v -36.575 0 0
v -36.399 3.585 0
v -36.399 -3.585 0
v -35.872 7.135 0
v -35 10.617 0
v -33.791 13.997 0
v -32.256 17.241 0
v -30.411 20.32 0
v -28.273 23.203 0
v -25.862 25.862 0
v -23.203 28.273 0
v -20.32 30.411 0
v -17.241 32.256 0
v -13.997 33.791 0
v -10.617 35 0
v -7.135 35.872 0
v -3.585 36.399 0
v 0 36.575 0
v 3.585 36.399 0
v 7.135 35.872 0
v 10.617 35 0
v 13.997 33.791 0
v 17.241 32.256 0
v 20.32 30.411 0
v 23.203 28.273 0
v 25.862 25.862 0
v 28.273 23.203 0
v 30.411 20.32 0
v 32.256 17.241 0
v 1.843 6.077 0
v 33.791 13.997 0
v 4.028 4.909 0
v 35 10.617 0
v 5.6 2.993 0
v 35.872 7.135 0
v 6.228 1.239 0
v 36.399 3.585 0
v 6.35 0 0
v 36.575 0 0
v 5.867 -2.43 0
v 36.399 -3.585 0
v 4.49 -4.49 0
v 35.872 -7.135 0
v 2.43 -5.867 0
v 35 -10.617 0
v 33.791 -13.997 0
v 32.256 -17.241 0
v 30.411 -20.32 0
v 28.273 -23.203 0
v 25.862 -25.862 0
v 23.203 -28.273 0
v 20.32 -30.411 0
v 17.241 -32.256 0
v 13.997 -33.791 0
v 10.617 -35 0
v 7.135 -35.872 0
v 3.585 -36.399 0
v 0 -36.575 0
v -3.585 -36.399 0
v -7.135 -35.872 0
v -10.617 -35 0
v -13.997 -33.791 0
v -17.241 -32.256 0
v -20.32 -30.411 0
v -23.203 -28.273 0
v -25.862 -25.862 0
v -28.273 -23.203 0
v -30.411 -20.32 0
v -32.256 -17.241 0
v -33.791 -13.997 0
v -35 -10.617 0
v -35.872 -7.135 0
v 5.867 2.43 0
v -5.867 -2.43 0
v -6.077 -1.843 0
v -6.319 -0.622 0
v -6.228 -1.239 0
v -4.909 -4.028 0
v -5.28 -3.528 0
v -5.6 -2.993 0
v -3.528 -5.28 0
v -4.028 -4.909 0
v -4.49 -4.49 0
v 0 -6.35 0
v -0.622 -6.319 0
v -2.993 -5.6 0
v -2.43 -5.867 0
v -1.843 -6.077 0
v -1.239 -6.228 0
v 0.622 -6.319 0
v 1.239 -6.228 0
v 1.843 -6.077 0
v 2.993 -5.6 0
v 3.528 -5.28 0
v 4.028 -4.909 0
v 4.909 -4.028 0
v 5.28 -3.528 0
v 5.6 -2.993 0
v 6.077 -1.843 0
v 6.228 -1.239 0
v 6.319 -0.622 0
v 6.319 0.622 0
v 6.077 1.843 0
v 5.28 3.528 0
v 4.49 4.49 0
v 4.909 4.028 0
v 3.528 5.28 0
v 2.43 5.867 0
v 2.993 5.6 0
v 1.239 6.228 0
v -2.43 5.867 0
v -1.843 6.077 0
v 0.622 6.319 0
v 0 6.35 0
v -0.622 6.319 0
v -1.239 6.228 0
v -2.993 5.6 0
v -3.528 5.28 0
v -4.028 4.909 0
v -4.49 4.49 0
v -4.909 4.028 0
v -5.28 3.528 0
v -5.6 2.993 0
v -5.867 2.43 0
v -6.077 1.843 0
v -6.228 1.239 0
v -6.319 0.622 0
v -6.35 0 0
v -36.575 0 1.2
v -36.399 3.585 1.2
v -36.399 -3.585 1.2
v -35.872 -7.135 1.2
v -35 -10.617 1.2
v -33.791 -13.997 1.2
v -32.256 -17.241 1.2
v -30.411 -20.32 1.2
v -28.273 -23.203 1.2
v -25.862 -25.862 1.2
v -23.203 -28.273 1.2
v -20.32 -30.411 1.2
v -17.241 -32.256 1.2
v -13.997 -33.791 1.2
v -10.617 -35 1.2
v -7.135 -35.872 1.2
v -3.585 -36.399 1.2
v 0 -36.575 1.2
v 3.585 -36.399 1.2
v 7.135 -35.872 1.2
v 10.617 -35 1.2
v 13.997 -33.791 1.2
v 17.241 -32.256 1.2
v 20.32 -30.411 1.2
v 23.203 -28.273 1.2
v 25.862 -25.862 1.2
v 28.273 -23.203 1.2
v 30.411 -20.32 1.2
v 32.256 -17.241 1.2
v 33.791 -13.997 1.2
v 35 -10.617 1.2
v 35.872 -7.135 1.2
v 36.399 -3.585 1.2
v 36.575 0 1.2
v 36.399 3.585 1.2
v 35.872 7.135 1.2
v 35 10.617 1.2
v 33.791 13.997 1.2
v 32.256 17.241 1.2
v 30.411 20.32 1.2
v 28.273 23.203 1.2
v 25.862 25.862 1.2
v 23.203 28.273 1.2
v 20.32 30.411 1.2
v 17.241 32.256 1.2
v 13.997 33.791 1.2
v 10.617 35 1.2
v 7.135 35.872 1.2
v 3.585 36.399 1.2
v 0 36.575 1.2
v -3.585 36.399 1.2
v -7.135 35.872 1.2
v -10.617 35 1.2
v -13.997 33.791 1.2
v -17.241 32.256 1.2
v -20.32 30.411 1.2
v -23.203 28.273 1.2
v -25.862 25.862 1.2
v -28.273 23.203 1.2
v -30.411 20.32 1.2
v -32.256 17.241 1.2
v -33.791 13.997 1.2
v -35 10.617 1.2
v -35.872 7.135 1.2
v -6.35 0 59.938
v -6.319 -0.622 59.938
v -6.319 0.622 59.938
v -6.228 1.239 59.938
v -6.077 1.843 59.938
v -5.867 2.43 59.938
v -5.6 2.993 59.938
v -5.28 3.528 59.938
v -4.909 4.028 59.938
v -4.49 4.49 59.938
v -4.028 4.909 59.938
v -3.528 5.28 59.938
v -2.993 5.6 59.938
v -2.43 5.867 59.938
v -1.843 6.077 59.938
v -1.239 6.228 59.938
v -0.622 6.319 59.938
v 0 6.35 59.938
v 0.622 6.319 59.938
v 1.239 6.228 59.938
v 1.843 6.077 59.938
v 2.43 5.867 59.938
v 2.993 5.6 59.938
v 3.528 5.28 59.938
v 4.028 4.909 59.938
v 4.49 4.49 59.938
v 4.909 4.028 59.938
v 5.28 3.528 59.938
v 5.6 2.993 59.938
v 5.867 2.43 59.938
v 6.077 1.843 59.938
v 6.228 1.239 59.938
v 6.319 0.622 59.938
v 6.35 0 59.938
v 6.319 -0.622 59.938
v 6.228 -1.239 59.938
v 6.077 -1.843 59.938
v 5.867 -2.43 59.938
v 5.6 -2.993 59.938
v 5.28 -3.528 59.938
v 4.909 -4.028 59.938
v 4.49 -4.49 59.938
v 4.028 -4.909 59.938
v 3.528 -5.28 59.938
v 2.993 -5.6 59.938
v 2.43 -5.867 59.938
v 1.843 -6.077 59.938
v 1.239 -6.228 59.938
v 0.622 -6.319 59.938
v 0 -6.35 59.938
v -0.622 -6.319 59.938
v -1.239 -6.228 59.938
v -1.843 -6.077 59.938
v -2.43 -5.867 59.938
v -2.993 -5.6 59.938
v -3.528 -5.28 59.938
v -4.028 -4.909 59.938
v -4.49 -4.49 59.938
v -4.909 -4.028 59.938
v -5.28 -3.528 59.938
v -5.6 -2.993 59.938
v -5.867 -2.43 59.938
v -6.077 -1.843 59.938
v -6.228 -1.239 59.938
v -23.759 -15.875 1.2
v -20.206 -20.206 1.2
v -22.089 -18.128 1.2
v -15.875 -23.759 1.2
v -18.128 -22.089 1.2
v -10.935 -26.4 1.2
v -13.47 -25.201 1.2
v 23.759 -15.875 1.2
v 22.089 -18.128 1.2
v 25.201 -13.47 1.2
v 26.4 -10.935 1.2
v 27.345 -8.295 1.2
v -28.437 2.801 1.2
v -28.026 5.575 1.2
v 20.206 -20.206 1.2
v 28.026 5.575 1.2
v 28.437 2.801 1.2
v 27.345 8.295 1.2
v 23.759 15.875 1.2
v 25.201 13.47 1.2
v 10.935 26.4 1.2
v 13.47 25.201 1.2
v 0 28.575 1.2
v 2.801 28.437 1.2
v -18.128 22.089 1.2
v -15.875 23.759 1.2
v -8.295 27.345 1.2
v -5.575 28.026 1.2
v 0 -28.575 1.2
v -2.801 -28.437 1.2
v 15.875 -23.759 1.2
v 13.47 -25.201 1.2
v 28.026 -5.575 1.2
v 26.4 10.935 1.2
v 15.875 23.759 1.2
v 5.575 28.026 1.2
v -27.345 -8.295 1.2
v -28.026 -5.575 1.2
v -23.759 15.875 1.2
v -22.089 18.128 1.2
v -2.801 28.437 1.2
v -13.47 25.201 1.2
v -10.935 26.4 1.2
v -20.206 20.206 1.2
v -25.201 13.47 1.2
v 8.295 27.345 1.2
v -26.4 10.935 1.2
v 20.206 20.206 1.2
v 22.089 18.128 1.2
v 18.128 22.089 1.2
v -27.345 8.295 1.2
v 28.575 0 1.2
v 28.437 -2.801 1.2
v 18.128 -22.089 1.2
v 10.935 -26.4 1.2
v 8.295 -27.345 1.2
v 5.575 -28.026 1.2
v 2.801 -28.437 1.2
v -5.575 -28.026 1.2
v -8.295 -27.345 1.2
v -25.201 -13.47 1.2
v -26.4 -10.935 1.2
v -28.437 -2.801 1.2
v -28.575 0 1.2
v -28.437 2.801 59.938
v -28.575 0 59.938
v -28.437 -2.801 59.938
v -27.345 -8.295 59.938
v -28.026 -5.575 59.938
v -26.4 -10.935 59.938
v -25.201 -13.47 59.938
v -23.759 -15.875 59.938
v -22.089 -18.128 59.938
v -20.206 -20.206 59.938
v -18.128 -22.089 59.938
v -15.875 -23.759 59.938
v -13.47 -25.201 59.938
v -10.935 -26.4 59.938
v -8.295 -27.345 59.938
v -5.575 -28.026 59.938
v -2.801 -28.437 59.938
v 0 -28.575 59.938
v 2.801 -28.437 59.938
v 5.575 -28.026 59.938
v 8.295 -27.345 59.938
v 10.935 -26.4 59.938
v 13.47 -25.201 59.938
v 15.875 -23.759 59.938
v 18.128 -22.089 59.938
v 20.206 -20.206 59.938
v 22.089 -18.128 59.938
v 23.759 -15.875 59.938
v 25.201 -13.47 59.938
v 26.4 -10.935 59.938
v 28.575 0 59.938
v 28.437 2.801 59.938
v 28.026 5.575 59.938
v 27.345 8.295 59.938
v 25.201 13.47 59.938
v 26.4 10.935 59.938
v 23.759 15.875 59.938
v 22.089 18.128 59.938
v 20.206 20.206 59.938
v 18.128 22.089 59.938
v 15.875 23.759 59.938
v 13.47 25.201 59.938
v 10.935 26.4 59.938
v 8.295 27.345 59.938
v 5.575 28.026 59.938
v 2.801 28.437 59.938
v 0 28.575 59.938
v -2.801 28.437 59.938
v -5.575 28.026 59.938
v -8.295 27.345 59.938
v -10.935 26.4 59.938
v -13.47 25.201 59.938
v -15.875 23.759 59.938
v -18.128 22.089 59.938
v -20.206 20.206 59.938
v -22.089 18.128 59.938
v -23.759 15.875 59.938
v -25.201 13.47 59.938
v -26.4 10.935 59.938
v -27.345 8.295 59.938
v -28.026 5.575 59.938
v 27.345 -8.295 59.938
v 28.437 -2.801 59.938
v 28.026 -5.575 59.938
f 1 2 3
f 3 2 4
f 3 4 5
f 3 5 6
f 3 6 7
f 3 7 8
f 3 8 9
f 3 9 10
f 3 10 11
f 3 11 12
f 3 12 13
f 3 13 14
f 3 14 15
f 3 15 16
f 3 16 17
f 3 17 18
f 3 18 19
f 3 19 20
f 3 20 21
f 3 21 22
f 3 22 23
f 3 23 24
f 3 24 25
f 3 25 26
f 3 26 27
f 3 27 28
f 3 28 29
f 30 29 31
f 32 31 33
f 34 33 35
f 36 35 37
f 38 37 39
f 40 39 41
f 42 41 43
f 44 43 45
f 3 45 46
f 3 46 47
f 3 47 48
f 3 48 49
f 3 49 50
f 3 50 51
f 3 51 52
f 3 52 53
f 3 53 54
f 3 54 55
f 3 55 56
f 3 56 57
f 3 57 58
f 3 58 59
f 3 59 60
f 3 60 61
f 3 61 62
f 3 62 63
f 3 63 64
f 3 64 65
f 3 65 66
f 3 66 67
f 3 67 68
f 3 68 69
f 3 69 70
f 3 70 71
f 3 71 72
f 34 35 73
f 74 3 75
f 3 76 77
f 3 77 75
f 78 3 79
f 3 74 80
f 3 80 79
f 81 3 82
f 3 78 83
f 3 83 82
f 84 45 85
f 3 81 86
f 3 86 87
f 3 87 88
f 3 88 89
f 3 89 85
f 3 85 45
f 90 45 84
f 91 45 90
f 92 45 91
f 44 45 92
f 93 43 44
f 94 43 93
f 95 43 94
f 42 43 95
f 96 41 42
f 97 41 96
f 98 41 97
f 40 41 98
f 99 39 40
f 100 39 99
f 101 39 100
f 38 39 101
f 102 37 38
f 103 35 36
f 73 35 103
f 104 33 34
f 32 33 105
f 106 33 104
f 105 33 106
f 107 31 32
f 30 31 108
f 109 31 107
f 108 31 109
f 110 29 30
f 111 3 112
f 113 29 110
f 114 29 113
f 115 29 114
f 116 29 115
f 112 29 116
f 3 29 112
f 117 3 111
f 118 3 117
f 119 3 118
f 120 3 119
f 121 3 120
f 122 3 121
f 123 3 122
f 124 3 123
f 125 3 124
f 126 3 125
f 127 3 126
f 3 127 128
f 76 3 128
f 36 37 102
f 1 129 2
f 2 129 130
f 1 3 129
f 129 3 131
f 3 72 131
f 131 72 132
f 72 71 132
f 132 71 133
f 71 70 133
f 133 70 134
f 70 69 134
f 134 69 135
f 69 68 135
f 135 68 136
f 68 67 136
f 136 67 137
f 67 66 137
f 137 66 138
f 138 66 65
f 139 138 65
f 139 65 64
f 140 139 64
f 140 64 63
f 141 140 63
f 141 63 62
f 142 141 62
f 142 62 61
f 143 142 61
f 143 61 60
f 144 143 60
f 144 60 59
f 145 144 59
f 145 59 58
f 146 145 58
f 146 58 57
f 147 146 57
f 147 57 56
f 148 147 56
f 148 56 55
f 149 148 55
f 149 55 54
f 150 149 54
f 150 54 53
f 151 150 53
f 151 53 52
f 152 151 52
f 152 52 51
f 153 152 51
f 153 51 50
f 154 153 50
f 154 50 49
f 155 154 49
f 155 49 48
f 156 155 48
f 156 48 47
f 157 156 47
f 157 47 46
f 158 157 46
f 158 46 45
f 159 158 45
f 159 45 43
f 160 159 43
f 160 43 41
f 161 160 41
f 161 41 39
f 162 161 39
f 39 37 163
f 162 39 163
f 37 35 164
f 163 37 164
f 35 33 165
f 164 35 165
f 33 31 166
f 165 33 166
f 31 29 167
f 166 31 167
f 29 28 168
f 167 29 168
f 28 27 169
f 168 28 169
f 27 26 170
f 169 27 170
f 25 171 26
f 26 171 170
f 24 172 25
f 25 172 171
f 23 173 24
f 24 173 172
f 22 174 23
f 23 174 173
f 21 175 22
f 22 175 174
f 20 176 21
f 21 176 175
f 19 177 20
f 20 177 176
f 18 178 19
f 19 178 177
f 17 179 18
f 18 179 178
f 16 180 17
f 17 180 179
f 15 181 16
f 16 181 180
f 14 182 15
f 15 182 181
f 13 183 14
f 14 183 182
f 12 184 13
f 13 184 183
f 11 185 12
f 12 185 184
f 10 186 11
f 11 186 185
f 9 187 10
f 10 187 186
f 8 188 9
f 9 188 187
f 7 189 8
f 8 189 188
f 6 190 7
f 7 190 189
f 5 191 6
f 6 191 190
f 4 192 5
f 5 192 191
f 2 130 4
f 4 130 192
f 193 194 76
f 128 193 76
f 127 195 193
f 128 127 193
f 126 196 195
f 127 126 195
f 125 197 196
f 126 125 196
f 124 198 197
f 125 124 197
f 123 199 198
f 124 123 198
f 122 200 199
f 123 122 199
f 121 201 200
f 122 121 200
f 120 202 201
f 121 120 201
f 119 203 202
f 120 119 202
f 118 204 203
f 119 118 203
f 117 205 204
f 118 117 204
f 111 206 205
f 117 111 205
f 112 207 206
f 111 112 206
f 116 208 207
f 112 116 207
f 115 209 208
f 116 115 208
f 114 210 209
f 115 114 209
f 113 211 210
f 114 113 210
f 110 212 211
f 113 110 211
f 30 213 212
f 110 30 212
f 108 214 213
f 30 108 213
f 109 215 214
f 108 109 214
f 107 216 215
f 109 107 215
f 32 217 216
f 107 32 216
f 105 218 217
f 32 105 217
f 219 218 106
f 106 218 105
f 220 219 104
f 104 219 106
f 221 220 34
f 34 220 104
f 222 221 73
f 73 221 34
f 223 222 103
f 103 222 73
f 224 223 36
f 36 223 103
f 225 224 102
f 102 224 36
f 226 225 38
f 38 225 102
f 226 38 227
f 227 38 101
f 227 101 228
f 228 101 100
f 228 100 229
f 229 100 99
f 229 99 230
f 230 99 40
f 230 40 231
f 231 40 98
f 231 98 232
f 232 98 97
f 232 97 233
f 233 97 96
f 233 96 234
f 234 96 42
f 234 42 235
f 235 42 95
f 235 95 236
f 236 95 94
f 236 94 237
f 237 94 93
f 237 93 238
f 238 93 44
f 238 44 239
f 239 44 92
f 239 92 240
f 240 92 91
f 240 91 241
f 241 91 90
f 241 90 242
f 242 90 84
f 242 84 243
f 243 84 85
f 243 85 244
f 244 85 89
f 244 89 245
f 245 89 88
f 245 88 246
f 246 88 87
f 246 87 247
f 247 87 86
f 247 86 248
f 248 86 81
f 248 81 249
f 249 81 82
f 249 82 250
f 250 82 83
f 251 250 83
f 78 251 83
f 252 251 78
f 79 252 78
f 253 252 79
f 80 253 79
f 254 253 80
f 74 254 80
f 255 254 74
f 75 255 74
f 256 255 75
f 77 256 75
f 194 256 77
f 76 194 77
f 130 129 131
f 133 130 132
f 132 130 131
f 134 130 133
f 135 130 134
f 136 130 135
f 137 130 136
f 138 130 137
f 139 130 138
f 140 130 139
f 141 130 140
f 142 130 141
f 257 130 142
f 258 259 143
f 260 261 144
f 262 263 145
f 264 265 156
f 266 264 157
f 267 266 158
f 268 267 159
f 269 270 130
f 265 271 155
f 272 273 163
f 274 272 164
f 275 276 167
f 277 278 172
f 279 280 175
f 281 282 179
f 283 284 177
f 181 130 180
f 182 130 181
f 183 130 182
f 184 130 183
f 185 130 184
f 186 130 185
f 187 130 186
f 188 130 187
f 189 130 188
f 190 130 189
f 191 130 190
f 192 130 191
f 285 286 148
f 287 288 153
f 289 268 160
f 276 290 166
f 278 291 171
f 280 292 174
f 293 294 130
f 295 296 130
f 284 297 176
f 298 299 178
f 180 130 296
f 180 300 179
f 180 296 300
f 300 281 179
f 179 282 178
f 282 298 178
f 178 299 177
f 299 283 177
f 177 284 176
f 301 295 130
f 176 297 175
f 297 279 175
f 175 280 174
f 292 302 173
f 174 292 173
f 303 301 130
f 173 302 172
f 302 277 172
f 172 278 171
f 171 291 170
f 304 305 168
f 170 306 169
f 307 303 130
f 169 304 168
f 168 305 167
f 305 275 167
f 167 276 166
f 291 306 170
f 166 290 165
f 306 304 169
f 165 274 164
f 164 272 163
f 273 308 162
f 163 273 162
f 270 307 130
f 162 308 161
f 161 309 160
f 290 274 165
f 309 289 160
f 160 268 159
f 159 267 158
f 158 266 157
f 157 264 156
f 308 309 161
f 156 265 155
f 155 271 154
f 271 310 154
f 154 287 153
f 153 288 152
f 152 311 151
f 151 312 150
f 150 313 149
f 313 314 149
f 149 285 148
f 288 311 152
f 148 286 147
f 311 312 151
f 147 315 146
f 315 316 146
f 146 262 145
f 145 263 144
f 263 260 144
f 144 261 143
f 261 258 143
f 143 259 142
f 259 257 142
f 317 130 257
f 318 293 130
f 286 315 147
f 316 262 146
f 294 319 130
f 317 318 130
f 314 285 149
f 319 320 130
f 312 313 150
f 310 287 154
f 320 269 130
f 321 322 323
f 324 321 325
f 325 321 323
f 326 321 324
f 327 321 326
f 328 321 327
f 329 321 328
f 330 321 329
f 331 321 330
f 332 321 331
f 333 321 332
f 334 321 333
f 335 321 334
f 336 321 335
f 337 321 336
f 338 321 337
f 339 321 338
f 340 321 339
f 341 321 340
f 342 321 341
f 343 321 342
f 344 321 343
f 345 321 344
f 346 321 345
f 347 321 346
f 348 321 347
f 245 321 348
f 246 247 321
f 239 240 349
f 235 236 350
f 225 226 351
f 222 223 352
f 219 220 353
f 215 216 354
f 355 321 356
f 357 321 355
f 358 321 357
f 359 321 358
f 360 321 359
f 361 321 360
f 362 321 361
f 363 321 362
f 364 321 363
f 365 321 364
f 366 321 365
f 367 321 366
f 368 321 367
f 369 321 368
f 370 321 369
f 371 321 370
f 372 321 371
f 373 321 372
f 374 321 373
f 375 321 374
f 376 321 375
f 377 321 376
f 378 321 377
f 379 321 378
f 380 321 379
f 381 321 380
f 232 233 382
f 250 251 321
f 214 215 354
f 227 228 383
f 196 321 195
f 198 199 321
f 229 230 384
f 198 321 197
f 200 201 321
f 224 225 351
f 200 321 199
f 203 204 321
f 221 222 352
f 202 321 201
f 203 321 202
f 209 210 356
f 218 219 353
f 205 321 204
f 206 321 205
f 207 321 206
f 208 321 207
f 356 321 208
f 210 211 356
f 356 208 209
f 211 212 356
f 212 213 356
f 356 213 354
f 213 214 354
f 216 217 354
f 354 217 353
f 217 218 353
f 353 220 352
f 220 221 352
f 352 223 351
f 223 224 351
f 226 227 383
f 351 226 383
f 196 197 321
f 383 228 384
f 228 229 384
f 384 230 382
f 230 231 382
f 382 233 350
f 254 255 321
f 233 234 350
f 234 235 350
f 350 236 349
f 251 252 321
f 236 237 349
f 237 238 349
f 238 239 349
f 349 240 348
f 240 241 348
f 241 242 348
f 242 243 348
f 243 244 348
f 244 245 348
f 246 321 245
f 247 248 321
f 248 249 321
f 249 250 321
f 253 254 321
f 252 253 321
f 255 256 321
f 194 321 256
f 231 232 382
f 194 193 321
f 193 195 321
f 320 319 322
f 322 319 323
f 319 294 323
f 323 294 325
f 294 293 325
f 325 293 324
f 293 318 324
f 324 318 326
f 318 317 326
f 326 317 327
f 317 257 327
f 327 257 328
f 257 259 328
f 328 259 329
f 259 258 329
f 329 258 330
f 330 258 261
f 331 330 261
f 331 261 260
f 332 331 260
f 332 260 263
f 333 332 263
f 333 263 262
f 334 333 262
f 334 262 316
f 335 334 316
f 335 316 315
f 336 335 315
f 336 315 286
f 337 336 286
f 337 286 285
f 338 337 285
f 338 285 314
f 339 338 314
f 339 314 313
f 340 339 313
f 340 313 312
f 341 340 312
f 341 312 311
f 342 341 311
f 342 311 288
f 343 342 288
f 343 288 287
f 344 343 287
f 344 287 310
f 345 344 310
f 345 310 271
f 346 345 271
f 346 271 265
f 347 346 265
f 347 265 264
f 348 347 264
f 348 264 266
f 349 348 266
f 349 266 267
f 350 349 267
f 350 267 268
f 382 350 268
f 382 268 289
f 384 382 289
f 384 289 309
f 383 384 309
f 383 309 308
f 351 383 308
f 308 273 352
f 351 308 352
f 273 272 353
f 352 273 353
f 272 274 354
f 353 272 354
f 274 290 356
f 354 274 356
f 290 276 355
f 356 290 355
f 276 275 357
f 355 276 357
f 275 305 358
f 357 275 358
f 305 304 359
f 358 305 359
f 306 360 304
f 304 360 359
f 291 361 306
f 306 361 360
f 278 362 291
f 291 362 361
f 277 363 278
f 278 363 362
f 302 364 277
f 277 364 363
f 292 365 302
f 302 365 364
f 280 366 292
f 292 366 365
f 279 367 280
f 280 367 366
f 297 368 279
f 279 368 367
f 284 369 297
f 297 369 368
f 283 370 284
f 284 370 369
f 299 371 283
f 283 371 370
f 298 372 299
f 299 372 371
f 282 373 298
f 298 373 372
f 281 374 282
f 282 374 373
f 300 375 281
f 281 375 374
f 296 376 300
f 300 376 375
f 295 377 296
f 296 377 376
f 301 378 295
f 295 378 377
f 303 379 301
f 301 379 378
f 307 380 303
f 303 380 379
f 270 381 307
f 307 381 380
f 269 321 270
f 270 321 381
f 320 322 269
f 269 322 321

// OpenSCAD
s = 25.4;
outer_radius = 2.25/2*s;
inner_radius = 1/4*s;
base_radius = outer_radius + 8;
base_height = 1.2;
height = (2+5/16)*s;

difference(){
  union(){
    cylinder(r=outer_radius, height+base_height, $fn=64);
    cylinder(r=base_radius, base_height, $fn=64);
  }
  cylinder(r=inner_radius, h=height+base_height, $fn=64);
}
